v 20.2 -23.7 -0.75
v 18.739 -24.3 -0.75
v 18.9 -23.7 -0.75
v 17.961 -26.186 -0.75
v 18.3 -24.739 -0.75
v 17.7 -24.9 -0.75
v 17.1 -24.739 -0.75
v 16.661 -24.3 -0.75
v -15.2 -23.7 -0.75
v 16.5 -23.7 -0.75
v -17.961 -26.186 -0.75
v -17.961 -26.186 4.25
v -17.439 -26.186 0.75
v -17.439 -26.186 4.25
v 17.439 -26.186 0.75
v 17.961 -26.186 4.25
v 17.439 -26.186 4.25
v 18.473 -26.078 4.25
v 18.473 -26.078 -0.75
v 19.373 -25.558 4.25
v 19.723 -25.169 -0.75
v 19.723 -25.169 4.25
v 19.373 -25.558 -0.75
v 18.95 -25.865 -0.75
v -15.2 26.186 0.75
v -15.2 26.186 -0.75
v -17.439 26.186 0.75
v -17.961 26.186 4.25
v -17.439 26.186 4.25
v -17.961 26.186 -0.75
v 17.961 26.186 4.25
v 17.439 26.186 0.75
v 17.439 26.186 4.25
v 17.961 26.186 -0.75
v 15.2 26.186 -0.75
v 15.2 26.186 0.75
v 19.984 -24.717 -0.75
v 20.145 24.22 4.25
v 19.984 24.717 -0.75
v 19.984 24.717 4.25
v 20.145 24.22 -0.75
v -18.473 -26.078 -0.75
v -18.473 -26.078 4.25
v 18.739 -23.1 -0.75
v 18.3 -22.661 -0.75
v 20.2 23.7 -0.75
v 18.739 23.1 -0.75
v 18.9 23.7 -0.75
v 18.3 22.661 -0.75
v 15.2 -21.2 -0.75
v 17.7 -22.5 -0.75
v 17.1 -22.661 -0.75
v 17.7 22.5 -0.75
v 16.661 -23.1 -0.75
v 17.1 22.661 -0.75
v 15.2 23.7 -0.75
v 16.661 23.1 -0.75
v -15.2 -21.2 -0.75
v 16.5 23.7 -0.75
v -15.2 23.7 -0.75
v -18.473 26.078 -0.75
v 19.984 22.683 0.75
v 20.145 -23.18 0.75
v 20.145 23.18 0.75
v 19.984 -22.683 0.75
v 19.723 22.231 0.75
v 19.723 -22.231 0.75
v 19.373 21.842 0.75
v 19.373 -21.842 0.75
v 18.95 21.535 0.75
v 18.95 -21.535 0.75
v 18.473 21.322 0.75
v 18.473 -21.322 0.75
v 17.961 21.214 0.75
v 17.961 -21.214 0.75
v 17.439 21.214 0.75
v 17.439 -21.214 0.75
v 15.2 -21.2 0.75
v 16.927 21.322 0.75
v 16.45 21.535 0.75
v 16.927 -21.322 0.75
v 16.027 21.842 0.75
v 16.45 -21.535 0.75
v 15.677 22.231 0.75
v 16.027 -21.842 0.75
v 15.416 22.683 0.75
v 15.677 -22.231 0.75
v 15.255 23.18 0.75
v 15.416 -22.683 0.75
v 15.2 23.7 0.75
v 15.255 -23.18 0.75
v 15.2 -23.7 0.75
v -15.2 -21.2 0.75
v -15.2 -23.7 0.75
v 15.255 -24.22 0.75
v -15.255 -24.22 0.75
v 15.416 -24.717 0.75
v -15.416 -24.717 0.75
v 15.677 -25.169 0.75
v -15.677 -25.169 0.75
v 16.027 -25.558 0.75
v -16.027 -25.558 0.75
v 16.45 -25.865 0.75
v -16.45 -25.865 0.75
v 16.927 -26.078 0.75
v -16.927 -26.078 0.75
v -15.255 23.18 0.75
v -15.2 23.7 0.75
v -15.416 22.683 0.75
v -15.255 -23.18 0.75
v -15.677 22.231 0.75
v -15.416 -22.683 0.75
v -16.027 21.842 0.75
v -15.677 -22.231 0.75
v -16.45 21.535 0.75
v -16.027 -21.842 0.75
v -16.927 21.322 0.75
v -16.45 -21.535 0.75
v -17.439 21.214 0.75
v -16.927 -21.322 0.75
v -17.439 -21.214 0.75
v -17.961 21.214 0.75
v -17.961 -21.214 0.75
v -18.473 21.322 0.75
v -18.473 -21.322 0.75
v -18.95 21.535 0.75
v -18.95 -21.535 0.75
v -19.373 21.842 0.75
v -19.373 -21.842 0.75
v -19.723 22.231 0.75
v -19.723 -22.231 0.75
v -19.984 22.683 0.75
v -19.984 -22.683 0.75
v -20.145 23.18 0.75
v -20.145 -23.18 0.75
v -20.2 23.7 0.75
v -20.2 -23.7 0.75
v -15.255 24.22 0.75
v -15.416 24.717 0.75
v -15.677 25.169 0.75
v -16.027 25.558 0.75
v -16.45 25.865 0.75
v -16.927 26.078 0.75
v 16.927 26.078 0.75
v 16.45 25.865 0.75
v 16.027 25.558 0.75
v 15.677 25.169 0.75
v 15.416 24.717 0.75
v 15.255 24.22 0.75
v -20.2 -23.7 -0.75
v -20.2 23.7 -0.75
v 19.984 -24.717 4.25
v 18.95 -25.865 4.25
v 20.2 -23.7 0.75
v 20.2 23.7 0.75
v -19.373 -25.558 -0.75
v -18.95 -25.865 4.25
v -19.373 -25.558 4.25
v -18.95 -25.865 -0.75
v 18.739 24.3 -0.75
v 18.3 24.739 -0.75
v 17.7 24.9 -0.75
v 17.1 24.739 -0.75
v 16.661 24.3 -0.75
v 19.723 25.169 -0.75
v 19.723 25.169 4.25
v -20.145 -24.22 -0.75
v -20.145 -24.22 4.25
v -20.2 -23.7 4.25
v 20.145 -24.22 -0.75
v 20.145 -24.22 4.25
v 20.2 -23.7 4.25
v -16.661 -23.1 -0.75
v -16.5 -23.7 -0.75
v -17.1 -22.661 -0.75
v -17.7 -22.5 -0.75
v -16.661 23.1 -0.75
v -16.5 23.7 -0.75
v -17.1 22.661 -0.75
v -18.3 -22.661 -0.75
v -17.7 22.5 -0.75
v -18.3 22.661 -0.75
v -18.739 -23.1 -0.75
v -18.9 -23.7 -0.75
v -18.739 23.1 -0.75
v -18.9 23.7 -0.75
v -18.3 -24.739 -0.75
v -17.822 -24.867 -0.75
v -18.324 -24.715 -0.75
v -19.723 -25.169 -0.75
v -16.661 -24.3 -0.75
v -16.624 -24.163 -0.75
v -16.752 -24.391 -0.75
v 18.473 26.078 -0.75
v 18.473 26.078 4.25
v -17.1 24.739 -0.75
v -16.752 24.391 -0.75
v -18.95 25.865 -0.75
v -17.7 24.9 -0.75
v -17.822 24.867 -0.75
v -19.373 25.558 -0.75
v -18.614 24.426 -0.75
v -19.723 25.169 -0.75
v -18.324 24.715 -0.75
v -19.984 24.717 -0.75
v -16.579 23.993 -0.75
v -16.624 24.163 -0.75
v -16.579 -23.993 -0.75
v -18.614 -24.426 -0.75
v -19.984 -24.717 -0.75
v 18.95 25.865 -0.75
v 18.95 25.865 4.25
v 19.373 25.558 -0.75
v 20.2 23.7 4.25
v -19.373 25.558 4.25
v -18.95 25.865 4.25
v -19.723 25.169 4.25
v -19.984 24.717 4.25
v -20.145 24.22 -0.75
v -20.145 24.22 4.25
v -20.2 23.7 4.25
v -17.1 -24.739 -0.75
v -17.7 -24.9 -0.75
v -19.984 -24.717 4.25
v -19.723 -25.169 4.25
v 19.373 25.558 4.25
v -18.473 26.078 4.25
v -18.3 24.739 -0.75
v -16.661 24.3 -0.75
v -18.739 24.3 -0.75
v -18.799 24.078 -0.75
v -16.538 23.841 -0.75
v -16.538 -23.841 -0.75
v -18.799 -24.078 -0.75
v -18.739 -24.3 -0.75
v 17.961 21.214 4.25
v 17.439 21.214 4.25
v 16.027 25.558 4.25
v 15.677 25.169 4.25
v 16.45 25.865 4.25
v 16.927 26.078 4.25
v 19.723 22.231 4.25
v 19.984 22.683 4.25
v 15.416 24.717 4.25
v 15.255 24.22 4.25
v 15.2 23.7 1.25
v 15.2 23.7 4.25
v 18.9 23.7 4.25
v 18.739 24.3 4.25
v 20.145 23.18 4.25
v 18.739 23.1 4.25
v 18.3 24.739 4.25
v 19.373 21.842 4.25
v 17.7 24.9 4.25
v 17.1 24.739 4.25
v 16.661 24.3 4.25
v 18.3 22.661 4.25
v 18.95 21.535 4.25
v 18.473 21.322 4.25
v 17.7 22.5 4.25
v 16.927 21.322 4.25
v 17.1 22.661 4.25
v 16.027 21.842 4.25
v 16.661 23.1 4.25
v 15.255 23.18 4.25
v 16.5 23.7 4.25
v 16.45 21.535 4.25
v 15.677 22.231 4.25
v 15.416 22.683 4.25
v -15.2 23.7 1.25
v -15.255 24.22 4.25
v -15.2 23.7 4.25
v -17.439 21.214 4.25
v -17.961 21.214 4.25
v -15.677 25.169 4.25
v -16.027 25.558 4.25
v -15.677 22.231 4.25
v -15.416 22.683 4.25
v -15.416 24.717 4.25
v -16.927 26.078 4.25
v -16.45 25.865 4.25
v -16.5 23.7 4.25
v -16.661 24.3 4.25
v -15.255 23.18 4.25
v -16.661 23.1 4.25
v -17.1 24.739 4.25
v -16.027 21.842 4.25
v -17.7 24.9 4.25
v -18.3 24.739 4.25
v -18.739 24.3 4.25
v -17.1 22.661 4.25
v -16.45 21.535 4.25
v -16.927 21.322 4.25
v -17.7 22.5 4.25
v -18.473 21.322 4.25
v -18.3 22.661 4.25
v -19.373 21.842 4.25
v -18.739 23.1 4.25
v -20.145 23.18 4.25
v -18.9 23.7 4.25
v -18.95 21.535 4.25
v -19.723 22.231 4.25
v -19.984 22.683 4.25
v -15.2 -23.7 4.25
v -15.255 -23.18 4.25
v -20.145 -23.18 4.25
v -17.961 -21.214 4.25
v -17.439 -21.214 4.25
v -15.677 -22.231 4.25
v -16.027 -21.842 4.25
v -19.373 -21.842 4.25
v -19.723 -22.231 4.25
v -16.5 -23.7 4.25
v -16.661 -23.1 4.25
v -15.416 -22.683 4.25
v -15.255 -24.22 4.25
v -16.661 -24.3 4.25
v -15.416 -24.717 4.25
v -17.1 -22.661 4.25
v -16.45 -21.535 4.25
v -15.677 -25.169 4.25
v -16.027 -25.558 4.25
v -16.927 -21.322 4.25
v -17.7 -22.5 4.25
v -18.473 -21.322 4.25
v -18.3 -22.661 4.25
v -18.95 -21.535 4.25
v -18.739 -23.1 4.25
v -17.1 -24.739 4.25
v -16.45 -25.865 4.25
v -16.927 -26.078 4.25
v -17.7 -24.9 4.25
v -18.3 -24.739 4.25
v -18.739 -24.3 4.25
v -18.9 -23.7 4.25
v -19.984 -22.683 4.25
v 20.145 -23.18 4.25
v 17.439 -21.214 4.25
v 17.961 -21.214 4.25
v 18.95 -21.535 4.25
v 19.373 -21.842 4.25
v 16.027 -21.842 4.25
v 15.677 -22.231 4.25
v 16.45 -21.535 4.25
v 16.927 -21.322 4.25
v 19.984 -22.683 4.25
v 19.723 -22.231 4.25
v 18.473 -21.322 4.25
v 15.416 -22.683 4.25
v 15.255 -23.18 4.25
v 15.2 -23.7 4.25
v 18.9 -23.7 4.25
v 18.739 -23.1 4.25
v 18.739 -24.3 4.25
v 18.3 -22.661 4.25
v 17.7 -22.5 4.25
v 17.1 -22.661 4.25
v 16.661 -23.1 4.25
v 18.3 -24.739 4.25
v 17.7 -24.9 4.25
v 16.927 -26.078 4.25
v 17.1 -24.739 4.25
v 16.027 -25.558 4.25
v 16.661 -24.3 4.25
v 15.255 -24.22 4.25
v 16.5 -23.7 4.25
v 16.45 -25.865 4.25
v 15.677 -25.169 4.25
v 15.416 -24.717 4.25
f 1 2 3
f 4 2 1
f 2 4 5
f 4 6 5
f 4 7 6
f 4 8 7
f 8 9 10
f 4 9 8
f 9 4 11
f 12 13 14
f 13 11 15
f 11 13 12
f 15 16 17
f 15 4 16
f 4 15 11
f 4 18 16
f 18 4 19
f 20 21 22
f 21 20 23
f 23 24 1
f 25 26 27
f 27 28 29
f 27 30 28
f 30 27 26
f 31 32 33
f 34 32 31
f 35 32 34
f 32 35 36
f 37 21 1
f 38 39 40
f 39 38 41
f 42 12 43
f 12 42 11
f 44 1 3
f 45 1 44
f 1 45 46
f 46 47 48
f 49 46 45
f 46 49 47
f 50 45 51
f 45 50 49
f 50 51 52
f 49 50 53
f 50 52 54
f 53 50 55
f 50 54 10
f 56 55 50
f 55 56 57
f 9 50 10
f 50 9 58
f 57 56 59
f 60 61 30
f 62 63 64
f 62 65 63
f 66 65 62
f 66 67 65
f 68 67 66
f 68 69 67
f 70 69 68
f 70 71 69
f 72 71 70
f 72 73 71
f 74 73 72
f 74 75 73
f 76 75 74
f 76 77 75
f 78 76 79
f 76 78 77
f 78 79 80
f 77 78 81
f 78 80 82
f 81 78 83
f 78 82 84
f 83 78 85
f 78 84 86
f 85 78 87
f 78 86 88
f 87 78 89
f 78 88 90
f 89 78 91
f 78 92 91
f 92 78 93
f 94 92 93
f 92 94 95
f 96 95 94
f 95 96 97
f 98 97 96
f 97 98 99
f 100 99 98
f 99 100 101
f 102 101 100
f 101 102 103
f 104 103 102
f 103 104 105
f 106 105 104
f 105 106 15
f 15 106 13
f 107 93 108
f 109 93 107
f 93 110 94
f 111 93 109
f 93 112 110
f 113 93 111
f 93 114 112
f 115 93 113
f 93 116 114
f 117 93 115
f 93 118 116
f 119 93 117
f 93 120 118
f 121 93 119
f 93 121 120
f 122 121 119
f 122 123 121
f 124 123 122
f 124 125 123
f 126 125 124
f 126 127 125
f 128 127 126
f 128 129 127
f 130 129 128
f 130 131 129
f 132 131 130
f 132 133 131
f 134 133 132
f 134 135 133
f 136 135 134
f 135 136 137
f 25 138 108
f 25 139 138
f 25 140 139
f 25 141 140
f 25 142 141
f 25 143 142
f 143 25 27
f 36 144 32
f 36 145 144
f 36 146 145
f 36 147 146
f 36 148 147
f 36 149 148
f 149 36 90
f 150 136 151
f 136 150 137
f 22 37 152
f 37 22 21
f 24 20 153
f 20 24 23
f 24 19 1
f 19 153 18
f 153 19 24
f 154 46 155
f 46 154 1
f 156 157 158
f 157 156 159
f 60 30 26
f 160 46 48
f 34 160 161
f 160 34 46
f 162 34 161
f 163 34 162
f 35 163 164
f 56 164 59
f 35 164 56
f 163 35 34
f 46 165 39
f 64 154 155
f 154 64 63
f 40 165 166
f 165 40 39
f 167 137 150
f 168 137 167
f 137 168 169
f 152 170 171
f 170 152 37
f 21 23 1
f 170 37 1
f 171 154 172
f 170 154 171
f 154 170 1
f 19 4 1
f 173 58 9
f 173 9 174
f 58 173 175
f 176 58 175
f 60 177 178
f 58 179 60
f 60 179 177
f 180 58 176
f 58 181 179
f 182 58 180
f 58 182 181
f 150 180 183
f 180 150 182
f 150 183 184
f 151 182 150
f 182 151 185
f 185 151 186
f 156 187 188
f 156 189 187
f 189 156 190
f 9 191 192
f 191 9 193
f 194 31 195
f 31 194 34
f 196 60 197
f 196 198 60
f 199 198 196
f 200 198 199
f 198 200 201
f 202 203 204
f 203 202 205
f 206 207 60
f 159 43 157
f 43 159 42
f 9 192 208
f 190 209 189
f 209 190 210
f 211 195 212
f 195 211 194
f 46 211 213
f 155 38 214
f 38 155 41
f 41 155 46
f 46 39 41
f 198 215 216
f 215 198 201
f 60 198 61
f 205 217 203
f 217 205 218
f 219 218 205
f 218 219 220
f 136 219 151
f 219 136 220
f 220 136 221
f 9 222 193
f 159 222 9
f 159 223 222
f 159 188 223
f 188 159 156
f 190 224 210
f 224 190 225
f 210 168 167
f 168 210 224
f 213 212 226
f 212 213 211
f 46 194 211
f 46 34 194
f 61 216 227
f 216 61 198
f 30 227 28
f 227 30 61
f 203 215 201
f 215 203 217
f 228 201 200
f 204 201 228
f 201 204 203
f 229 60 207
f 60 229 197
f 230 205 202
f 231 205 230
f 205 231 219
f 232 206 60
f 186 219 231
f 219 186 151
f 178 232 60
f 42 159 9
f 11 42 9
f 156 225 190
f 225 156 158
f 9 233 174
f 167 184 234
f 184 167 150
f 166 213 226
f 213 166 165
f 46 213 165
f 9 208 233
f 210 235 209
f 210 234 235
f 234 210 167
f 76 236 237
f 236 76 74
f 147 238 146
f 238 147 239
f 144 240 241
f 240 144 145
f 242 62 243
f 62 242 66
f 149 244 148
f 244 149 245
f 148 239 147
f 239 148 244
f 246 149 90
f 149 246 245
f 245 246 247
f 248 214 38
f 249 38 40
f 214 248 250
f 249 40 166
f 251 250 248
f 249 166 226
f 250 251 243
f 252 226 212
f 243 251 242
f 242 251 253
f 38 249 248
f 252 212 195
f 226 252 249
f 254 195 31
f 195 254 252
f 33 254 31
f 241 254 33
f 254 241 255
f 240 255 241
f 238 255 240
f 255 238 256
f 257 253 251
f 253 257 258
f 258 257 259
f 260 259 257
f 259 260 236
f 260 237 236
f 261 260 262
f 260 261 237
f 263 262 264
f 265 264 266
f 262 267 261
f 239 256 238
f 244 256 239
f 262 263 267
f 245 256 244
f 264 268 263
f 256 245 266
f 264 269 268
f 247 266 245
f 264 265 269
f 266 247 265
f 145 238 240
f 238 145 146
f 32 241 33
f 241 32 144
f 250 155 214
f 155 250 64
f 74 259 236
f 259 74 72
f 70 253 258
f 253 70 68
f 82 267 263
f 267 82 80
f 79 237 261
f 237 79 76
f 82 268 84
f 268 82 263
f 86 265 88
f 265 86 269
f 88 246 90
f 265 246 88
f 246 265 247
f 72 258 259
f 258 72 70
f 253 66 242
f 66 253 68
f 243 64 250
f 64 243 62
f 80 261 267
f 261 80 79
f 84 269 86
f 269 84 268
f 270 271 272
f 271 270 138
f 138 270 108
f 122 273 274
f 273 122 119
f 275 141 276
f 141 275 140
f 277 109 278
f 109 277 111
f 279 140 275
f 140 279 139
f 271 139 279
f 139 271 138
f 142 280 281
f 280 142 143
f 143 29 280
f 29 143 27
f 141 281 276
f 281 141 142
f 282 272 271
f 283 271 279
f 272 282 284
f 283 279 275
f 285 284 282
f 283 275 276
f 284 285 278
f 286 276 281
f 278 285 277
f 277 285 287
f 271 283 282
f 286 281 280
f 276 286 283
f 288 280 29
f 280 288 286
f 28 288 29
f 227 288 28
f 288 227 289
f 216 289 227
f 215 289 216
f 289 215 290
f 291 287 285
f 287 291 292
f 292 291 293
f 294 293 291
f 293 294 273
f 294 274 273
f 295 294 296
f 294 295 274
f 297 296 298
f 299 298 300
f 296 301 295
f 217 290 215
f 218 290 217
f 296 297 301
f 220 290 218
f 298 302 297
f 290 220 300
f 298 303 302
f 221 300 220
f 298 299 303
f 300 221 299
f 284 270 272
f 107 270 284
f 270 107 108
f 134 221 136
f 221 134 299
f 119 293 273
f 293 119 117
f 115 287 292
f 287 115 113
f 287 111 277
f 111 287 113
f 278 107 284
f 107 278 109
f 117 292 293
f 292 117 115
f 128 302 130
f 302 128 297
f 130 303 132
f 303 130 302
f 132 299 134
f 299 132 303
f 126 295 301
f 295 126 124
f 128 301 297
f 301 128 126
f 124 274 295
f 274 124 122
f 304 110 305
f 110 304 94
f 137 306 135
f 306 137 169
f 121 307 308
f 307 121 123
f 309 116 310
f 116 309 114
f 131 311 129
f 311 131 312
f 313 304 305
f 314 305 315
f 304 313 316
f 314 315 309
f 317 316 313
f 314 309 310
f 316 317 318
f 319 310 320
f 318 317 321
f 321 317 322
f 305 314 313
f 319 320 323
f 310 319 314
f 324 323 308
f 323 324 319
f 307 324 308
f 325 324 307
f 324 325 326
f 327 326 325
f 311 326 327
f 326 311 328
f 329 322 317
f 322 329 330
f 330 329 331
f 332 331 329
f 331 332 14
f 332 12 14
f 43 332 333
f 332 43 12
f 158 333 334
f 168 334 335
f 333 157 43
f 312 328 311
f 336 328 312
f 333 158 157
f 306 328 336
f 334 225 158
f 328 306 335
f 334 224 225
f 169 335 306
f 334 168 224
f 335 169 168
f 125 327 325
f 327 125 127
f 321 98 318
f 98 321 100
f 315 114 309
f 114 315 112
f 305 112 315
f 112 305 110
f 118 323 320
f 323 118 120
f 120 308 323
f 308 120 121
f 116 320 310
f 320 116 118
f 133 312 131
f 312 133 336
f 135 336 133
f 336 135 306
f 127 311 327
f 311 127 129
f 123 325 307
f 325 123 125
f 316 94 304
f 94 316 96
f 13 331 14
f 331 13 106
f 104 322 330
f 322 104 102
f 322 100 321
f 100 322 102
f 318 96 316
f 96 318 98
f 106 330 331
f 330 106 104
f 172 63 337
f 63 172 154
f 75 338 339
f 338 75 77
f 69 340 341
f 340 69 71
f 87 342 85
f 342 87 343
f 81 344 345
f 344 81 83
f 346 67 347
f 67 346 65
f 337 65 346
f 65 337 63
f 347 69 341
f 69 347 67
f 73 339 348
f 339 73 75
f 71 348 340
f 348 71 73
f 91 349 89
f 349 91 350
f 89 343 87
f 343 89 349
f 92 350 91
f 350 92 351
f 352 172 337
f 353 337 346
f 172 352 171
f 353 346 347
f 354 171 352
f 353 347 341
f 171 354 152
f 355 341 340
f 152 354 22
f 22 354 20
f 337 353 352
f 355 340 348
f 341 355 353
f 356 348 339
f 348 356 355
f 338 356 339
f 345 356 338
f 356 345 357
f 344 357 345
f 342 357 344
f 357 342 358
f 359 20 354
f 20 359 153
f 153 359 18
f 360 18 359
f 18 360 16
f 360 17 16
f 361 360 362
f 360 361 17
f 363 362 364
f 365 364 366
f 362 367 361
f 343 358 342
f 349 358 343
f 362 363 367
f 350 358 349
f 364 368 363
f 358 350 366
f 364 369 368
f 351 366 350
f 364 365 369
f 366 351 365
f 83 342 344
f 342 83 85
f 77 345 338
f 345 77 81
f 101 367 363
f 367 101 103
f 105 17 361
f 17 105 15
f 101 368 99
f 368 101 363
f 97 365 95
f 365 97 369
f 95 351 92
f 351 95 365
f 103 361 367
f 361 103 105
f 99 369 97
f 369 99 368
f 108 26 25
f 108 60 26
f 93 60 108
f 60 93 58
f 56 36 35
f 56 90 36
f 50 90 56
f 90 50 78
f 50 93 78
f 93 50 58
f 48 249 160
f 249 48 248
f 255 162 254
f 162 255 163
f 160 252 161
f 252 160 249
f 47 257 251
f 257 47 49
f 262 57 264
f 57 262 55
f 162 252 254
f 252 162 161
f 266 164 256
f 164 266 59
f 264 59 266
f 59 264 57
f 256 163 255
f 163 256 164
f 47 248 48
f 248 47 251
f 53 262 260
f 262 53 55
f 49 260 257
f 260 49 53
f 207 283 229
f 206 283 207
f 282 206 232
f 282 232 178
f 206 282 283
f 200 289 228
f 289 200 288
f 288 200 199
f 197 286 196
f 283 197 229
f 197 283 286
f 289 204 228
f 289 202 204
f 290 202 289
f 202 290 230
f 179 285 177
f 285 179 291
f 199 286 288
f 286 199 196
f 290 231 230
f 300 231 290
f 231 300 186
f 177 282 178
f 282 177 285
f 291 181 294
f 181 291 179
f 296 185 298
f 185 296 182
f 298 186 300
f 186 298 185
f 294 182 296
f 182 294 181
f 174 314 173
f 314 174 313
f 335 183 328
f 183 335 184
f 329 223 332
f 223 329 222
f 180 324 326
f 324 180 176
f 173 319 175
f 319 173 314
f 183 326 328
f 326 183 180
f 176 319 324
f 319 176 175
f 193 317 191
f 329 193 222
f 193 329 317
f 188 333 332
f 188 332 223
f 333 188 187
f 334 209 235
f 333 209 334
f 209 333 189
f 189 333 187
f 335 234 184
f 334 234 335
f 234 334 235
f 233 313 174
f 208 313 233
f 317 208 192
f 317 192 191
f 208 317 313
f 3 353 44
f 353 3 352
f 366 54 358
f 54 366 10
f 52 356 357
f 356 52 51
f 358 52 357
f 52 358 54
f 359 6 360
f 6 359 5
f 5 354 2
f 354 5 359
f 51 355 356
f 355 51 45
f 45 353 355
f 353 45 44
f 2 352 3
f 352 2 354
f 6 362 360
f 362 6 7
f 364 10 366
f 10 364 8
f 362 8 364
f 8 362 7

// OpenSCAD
b=47.4;
h=35.4;

difference(){
union(){
minkowski(){
cube([h,b,1.5],center=true);
cylinder(d=5,h=0.000001,$fn=30);
}
translate([h/2,b/2,0])cylinder(d=5,h=4.25,$fn=30);
translate([-h/2,b/2,0])cylinder(d=5,h=4.25,$fn=30);
translate([-h/2,-b/2,0])cylinder(d=5,h=4.25,$fn=30);
translate([h/2,-b/2,0])cylinder(d=5,h=4.25,$fn=30);
}
cube([h-5,b-5,2.5],center=true);
translate([h/2,b/2,-1])cylinder(d=2.4,h=7,$fn=12);
translate([-h/2,b/2,-1])cylinder(d=2.4,h=7,$fn=12);
translate([-h/2,-b/2,-1])cylinder(d=2.4,h=7,$fn=12);
translate([h/2,-b/2,-1])cylinder(d=2.4,h=7,$fn=12);
translate([0,10,0])cube([h-5,b-5,2.5],center=true);
}
